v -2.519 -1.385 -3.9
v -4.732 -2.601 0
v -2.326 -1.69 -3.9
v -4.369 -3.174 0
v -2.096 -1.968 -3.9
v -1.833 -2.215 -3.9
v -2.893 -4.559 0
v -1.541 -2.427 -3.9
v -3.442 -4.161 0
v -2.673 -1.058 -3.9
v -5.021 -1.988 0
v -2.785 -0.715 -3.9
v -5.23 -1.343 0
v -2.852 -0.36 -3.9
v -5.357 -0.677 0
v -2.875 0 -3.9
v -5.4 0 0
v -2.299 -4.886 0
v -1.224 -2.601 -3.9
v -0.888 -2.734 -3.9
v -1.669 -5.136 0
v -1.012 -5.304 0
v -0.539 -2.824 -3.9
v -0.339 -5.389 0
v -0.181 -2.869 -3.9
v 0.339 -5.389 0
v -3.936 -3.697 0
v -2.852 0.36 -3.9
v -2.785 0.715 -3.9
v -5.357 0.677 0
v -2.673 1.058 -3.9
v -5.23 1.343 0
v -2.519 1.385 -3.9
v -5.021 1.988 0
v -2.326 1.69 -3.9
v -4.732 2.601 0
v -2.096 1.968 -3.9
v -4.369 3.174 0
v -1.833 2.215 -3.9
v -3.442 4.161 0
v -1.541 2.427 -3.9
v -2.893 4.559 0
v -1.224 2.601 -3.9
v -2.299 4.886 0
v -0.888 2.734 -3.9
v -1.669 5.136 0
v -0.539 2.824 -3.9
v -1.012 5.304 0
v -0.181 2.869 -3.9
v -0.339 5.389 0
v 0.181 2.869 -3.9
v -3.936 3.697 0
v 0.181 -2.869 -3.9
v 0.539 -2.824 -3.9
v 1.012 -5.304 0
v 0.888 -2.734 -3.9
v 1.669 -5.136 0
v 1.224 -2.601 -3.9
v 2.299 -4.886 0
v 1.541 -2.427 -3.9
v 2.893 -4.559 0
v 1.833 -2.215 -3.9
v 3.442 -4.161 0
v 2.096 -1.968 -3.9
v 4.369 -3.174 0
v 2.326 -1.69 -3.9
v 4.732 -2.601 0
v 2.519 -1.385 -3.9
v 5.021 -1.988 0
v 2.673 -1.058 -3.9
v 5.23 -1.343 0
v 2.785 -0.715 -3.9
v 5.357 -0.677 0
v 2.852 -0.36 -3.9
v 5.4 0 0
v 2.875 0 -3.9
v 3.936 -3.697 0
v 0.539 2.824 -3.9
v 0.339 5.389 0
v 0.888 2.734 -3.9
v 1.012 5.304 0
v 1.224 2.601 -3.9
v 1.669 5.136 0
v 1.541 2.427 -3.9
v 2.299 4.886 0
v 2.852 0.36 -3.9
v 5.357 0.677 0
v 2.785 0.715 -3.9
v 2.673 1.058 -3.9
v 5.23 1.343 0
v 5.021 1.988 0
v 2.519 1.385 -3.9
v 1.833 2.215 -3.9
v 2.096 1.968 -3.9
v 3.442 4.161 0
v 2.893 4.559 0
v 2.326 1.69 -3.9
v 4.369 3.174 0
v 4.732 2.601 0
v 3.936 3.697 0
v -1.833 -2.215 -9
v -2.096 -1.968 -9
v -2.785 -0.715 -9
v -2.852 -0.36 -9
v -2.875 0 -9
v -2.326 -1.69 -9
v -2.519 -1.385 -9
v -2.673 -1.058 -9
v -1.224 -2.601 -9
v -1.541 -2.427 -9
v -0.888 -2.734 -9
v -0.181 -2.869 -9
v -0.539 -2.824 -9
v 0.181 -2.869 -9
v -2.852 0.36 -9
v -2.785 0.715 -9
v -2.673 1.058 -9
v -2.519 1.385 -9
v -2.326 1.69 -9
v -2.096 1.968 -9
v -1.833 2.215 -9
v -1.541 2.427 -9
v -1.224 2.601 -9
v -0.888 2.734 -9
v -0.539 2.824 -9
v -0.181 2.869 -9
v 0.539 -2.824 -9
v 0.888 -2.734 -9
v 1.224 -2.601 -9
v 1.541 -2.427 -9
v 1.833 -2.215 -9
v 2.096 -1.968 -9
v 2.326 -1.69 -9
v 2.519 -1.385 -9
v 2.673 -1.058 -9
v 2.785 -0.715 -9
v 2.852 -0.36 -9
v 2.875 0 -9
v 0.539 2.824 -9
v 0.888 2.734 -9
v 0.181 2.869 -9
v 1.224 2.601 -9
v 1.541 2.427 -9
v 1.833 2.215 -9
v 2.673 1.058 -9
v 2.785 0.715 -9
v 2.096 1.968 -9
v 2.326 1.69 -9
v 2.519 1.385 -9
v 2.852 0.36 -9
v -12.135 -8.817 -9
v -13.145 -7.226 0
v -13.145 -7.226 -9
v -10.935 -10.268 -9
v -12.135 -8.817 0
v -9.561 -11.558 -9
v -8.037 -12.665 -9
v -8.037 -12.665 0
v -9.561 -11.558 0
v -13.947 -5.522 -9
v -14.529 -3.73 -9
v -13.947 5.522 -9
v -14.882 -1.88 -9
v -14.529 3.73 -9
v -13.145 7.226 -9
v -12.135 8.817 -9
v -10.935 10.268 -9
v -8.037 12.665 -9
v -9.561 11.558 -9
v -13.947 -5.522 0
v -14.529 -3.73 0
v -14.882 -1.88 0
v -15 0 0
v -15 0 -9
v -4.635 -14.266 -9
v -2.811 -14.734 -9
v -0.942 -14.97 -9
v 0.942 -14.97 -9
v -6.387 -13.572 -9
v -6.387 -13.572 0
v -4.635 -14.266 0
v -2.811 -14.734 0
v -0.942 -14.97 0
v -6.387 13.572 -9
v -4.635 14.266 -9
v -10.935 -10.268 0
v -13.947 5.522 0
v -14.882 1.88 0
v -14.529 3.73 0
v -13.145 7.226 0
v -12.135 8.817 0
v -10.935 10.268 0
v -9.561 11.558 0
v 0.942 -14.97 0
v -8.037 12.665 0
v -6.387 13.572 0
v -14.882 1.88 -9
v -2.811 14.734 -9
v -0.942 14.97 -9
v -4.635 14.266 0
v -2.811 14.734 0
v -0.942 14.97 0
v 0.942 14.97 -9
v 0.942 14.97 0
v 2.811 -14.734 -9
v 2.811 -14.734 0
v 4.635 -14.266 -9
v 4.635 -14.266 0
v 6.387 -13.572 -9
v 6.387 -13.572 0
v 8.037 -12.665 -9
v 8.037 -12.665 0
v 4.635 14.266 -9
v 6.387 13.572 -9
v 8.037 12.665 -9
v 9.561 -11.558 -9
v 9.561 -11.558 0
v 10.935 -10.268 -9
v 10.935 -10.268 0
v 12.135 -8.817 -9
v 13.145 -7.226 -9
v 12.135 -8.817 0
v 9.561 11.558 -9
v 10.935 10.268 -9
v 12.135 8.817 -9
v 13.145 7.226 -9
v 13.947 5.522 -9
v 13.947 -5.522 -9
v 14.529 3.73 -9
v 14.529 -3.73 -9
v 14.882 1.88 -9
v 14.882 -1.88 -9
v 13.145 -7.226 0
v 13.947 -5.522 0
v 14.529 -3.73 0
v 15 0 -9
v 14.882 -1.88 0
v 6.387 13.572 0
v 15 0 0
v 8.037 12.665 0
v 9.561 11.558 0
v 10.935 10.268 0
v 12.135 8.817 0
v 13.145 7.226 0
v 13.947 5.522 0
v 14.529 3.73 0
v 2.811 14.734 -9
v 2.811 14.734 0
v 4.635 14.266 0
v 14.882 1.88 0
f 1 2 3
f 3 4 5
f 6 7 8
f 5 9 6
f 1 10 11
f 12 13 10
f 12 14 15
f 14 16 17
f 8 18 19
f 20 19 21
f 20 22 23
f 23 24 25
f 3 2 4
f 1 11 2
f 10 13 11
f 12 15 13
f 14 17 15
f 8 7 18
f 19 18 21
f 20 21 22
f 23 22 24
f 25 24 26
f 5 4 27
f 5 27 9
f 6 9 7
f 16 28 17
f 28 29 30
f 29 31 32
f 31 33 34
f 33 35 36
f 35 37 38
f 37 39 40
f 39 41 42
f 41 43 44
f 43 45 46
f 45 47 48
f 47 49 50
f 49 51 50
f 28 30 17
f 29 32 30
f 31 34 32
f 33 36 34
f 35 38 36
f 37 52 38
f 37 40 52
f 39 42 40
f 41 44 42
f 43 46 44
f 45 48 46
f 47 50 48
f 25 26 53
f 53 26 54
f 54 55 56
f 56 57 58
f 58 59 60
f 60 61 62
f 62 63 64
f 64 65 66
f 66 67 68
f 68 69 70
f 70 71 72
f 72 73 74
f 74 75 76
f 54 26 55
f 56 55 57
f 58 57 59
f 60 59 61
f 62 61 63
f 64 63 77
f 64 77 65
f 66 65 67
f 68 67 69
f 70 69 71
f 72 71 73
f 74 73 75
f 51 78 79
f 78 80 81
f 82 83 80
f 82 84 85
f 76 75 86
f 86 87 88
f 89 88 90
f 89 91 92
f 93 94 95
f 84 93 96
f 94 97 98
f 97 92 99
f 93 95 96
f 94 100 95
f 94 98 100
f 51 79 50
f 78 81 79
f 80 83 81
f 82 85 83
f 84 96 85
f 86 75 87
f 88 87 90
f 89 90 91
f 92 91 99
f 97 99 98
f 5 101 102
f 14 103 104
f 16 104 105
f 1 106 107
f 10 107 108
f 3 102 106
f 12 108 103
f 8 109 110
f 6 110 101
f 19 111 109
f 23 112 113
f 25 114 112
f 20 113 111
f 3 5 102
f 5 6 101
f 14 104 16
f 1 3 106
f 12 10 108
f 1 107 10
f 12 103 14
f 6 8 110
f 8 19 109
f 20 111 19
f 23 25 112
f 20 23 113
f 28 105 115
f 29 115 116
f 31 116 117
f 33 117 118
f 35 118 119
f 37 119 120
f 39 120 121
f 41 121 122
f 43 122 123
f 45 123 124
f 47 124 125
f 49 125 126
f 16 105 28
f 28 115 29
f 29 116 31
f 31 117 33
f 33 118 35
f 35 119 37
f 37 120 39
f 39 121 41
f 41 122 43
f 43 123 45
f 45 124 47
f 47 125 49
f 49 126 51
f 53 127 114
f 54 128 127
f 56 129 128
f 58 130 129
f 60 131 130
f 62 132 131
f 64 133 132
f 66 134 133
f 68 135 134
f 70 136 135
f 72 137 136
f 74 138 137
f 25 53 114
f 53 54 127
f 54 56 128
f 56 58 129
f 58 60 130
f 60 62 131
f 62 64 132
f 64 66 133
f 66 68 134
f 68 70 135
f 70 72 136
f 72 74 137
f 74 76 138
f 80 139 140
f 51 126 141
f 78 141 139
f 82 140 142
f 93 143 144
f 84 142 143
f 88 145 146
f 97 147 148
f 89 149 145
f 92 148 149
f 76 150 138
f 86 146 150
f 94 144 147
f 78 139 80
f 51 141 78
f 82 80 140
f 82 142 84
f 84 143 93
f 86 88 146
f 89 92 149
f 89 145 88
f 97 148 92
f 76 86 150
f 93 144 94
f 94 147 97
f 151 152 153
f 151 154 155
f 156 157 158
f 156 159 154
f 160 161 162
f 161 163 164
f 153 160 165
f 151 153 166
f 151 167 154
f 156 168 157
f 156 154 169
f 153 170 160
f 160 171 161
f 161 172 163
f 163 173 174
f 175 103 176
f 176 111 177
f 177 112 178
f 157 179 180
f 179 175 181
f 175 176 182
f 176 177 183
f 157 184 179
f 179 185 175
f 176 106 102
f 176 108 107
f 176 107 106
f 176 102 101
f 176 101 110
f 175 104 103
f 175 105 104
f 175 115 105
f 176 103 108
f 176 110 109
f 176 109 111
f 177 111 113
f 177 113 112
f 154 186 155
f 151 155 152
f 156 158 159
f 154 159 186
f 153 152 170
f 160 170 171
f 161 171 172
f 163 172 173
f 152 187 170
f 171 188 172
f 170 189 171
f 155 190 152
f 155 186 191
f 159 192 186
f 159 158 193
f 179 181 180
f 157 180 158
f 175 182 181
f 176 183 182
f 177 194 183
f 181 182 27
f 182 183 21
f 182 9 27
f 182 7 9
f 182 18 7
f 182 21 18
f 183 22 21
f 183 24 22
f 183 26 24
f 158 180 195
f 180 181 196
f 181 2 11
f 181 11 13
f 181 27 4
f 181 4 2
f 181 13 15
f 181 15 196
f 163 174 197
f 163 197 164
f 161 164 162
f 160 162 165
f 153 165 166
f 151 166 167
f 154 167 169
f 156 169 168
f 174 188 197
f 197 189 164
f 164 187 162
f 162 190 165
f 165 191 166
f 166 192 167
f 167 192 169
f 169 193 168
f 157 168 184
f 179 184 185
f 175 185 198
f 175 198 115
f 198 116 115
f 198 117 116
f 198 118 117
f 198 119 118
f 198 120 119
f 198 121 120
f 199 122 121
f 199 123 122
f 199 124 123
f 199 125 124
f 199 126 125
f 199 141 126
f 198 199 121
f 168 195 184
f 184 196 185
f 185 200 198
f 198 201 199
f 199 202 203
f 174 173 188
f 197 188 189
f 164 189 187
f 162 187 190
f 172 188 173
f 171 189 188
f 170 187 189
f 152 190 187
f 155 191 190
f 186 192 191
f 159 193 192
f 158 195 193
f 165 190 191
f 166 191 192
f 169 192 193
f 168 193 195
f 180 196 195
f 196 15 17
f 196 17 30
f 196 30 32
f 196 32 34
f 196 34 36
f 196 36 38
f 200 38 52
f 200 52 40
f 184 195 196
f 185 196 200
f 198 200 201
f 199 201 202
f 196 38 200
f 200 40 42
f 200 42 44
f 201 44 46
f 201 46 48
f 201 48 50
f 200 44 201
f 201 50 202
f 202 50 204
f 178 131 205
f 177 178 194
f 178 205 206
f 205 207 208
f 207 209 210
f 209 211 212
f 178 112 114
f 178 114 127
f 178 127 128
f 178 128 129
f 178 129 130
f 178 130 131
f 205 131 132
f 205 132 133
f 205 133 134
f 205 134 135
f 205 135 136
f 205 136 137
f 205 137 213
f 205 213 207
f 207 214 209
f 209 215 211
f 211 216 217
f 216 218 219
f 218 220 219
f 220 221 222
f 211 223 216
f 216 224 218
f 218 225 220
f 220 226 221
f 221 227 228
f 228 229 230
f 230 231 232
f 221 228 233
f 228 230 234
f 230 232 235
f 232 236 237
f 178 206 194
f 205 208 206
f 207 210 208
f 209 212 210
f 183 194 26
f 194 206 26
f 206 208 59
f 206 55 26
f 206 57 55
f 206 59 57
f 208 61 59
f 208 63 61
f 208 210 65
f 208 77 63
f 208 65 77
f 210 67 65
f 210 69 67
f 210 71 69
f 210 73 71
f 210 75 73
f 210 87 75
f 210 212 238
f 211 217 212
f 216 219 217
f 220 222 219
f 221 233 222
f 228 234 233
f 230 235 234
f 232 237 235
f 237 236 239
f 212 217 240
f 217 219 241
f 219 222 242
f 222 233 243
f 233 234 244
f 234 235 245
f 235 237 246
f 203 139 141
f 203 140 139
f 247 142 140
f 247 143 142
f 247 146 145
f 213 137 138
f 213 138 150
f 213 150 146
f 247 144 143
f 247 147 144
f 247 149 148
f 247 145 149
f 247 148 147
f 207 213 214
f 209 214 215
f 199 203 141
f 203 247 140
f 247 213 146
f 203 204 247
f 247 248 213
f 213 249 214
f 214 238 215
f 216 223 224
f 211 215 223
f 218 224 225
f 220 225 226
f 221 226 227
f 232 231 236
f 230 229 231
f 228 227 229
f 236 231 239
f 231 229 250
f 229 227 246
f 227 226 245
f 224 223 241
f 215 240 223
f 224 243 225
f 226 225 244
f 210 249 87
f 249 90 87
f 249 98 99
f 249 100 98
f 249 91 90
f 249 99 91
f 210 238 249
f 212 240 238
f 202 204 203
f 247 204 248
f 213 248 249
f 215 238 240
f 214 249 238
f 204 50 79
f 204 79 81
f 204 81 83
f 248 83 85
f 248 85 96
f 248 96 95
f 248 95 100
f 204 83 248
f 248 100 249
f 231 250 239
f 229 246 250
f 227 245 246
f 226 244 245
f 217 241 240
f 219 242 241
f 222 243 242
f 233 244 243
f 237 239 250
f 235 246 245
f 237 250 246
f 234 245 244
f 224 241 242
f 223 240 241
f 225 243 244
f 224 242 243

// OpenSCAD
$fn = 50;

difference() {
	union() {
		translate(v = [0, 0, -9.0]) {
			cylinder(h = 9, r = 15.0);
		}
	}
	union() {
		translate(v = [0, 0, 0]) {
			rotate(a = [0, 0, 0]) {
				difference() {
					union() {
						translate(v = [0, 0, -12.0]) {
							cylinder(h = 12, r = 2.6);
						}
						translate(v = [0, 0, -3.9]) {
							cylinder(h = 3.9, r1 = 2.875, r2 = 5.4);
						}
						translate(v = [0, 0, -12.0]) {
							cylinder(h = 12, r = 2.875);
						}
						translate(v = [0, 0, -12.0]) {
							cylinder(h = 12, r = 2.6);
						}
					}
					union();
				}
			}
		}
	}
}
